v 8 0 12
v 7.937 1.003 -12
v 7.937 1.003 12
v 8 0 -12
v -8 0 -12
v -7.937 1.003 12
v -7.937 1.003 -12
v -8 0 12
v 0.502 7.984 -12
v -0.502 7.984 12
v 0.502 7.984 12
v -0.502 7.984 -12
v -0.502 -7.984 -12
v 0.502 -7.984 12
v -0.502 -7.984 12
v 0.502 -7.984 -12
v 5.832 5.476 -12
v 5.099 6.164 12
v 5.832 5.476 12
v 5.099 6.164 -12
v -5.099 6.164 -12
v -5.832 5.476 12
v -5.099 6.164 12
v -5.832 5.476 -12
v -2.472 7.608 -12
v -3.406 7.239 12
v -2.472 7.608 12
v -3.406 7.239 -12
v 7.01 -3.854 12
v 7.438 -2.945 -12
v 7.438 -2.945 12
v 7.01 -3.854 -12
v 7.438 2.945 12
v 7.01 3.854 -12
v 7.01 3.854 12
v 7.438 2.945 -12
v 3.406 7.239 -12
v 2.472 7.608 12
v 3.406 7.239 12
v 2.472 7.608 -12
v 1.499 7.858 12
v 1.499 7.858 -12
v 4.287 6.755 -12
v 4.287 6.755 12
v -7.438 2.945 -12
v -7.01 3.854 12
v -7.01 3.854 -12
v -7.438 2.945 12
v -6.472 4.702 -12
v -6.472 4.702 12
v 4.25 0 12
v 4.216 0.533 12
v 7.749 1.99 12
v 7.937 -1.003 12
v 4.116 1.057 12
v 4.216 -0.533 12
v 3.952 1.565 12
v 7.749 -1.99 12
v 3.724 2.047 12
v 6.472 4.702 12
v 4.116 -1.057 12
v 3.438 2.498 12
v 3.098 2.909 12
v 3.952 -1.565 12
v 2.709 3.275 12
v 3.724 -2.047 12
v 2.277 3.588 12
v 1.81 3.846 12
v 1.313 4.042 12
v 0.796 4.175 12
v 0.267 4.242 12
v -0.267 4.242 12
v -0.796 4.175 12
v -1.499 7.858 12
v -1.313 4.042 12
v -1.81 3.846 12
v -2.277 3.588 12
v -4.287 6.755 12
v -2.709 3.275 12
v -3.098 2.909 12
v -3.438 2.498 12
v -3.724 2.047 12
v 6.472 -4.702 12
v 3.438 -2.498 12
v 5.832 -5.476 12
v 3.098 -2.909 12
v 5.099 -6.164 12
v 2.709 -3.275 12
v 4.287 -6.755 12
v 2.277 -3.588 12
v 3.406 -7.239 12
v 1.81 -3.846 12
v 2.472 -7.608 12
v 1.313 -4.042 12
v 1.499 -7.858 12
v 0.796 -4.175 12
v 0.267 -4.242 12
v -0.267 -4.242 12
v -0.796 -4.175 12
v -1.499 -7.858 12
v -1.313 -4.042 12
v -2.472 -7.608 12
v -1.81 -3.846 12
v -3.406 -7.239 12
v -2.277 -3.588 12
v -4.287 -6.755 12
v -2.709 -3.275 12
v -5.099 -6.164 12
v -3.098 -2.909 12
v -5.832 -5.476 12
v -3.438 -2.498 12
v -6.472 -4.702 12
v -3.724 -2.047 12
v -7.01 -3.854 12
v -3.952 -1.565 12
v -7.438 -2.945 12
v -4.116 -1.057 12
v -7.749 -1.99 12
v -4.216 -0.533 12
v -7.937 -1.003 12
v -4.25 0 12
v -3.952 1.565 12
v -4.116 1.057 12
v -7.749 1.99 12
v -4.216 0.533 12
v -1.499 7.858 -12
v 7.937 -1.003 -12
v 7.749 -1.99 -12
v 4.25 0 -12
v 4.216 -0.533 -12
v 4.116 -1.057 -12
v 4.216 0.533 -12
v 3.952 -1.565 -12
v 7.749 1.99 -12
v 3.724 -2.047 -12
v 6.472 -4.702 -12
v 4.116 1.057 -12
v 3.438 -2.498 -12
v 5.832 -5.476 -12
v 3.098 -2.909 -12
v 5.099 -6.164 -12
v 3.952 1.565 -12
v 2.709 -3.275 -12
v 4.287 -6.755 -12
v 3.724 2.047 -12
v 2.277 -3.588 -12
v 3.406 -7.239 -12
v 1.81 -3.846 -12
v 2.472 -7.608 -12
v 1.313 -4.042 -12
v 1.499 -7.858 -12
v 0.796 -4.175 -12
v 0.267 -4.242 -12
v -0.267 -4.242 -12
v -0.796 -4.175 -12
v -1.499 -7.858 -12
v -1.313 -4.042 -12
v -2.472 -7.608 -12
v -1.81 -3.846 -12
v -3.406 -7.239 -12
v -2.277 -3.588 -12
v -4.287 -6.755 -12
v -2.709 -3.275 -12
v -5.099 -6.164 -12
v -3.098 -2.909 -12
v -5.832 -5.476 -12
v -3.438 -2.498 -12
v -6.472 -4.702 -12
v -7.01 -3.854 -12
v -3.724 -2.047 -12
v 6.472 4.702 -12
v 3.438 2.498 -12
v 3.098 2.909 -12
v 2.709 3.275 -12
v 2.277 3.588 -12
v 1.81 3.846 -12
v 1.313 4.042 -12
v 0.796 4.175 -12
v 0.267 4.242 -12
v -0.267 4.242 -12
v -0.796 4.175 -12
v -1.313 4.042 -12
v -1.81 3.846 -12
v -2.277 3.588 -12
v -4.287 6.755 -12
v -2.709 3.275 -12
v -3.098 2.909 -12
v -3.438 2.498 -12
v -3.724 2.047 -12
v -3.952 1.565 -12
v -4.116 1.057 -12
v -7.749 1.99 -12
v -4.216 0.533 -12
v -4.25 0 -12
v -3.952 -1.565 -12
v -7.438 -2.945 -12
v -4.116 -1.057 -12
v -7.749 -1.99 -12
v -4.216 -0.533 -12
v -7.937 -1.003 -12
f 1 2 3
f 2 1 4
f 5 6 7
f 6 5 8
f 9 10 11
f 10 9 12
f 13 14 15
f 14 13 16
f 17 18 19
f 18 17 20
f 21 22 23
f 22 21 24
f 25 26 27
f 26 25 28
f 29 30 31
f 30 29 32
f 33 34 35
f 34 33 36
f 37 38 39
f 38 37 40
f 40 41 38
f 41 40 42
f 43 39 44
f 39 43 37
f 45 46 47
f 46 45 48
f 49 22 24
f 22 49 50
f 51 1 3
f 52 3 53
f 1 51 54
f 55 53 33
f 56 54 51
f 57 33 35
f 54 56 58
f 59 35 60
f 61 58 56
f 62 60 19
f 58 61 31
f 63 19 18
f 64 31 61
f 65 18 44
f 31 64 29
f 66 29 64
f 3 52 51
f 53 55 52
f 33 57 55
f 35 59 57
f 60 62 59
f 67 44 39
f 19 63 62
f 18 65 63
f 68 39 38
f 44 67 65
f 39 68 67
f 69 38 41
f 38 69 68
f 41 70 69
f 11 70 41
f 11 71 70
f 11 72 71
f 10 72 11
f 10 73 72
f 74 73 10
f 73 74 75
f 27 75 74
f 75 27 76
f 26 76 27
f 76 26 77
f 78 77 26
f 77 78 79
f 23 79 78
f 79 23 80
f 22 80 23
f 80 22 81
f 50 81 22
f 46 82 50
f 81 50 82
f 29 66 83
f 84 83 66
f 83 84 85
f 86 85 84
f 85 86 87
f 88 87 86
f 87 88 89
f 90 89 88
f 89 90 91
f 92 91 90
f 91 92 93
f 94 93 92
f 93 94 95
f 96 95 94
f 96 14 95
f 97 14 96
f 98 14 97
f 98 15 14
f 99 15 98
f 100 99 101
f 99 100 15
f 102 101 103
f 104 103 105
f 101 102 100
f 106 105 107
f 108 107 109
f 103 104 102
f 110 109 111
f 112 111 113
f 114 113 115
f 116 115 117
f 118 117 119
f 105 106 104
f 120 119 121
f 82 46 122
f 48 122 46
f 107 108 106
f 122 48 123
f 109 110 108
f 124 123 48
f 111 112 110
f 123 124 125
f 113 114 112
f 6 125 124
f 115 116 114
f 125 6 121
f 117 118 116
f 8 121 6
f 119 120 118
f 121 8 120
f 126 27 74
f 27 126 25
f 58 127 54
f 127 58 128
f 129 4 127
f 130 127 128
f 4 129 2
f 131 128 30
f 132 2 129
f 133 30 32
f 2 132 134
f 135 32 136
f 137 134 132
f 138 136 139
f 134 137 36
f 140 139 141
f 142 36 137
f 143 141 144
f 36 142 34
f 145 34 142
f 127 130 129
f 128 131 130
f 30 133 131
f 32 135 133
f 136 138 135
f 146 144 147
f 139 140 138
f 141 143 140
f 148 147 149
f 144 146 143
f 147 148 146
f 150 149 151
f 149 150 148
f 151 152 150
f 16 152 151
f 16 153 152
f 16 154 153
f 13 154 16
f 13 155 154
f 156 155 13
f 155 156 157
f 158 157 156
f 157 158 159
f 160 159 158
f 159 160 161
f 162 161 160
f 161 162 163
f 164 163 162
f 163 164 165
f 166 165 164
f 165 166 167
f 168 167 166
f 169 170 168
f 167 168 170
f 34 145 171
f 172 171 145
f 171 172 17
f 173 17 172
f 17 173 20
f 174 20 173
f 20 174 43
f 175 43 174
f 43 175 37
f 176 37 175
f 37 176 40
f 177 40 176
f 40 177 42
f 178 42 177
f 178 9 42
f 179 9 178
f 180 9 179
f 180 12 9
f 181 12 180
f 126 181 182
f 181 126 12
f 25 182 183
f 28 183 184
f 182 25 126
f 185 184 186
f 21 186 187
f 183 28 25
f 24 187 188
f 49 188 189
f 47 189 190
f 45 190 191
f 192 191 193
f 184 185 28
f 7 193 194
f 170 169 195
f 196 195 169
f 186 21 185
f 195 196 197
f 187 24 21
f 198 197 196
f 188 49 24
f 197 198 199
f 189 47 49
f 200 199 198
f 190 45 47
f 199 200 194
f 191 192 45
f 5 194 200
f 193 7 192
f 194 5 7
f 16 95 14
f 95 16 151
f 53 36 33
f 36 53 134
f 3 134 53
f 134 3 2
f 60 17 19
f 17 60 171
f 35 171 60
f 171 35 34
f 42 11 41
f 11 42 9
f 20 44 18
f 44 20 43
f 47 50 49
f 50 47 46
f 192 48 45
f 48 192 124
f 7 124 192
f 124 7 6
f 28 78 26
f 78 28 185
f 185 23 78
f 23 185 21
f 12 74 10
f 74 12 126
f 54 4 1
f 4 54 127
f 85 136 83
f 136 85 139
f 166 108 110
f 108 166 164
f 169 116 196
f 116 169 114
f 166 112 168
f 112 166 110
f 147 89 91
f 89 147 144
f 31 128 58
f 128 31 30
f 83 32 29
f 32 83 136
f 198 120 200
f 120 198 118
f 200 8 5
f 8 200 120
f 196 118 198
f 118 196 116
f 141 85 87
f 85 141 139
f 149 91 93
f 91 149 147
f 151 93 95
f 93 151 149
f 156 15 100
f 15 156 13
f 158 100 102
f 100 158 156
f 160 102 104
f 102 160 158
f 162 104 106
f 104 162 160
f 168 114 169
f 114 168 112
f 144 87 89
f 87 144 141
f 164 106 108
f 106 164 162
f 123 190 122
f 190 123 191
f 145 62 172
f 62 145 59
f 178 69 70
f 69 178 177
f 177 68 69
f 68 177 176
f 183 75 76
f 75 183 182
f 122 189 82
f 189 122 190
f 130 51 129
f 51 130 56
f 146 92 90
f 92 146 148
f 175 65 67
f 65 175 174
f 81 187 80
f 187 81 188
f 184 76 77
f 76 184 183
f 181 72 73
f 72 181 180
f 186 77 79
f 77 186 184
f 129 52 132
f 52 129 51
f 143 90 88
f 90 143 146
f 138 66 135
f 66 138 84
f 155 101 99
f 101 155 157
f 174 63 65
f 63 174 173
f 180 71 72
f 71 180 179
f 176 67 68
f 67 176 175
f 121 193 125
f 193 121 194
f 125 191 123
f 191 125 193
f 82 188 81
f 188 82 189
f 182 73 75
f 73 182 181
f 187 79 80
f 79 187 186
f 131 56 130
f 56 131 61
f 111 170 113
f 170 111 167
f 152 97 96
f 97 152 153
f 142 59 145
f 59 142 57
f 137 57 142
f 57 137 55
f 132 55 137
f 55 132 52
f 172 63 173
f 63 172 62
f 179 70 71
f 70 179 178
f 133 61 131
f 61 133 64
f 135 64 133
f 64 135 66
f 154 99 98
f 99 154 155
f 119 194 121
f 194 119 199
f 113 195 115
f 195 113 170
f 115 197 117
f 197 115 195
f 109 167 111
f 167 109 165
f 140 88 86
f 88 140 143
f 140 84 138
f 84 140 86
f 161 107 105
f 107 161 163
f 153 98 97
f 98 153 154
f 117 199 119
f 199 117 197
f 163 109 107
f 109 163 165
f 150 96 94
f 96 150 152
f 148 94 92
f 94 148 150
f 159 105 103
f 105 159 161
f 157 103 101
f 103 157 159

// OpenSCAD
$fn = 50;


difference() {
	union() {
		translate(v = [0, 0, -12.0000000000]) {
			cylinder(h = 24, r = 8.0000000000);
		}
	}
	union() {
		translate(v = [0, 0, -100.0000000000]) {
			cylinder(h = 200, r = 4.2500000000);
		}
	}
}
